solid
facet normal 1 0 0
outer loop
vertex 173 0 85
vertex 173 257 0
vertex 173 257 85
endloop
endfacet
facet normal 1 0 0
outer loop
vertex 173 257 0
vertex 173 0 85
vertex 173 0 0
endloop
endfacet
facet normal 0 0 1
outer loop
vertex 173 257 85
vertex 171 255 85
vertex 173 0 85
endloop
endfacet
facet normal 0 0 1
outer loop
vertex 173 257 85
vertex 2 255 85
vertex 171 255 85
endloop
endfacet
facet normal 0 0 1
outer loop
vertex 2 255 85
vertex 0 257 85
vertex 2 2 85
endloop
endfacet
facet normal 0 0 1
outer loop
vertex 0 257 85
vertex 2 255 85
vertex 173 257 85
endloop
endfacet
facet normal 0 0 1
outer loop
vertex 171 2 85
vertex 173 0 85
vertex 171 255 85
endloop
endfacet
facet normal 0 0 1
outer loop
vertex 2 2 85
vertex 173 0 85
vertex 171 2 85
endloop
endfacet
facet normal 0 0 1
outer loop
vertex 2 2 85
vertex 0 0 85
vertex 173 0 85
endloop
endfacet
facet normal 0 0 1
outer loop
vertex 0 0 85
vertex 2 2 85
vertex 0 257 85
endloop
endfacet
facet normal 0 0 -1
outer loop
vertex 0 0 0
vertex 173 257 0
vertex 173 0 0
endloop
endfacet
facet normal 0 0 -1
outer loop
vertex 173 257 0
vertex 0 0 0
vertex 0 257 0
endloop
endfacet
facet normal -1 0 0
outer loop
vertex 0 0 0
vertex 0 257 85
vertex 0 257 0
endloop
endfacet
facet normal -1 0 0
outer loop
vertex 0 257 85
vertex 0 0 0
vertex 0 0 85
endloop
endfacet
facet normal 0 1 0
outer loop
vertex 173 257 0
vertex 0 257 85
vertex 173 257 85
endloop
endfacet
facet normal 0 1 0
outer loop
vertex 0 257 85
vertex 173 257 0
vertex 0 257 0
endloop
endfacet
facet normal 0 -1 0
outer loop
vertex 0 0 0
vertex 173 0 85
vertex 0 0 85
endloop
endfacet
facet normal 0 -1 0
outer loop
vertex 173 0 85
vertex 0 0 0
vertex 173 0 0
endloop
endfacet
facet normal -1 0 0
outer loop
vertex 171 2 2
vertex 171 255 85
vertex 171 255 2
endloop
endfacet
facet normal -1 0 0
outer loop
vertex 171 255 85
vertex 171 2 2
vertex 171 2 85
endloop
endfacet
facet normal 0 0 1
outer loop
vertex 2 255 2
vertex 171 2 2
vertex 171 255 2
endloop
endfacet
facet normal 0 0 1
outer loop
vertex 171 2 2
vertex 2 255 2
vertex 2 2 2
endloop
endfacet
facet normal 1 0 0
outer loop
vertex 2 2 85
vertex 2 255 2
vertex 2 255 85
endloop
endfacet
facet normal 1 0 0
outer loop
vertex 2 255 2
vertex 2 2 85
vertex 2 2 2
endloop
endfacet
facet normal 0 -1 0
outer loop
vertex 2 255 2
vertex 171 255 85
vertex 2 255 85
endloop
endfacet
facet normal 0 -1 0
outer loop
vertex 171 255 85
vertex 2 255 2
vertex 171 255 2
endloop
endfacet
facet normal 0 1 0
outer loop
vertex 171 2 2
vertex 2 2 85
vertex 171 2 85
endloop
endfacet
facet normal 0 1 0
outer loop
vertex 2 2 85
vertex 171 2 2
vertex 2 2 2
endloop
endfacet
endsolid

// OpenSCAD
largeur_in = 4*42+1;
profondeur_in = 6*42+1;
hauteur = 85;
wall = 2;

largeur_out = largeur_in+wall*2;
profondeur_out = profondeur_in+wall*2;

difference() {
	cube([largeur_out, profondeur_out, hauteur]);
	translate([wall,wall,wall])
		cube([largeur_in, profondeur_in, hauteur]);
}
